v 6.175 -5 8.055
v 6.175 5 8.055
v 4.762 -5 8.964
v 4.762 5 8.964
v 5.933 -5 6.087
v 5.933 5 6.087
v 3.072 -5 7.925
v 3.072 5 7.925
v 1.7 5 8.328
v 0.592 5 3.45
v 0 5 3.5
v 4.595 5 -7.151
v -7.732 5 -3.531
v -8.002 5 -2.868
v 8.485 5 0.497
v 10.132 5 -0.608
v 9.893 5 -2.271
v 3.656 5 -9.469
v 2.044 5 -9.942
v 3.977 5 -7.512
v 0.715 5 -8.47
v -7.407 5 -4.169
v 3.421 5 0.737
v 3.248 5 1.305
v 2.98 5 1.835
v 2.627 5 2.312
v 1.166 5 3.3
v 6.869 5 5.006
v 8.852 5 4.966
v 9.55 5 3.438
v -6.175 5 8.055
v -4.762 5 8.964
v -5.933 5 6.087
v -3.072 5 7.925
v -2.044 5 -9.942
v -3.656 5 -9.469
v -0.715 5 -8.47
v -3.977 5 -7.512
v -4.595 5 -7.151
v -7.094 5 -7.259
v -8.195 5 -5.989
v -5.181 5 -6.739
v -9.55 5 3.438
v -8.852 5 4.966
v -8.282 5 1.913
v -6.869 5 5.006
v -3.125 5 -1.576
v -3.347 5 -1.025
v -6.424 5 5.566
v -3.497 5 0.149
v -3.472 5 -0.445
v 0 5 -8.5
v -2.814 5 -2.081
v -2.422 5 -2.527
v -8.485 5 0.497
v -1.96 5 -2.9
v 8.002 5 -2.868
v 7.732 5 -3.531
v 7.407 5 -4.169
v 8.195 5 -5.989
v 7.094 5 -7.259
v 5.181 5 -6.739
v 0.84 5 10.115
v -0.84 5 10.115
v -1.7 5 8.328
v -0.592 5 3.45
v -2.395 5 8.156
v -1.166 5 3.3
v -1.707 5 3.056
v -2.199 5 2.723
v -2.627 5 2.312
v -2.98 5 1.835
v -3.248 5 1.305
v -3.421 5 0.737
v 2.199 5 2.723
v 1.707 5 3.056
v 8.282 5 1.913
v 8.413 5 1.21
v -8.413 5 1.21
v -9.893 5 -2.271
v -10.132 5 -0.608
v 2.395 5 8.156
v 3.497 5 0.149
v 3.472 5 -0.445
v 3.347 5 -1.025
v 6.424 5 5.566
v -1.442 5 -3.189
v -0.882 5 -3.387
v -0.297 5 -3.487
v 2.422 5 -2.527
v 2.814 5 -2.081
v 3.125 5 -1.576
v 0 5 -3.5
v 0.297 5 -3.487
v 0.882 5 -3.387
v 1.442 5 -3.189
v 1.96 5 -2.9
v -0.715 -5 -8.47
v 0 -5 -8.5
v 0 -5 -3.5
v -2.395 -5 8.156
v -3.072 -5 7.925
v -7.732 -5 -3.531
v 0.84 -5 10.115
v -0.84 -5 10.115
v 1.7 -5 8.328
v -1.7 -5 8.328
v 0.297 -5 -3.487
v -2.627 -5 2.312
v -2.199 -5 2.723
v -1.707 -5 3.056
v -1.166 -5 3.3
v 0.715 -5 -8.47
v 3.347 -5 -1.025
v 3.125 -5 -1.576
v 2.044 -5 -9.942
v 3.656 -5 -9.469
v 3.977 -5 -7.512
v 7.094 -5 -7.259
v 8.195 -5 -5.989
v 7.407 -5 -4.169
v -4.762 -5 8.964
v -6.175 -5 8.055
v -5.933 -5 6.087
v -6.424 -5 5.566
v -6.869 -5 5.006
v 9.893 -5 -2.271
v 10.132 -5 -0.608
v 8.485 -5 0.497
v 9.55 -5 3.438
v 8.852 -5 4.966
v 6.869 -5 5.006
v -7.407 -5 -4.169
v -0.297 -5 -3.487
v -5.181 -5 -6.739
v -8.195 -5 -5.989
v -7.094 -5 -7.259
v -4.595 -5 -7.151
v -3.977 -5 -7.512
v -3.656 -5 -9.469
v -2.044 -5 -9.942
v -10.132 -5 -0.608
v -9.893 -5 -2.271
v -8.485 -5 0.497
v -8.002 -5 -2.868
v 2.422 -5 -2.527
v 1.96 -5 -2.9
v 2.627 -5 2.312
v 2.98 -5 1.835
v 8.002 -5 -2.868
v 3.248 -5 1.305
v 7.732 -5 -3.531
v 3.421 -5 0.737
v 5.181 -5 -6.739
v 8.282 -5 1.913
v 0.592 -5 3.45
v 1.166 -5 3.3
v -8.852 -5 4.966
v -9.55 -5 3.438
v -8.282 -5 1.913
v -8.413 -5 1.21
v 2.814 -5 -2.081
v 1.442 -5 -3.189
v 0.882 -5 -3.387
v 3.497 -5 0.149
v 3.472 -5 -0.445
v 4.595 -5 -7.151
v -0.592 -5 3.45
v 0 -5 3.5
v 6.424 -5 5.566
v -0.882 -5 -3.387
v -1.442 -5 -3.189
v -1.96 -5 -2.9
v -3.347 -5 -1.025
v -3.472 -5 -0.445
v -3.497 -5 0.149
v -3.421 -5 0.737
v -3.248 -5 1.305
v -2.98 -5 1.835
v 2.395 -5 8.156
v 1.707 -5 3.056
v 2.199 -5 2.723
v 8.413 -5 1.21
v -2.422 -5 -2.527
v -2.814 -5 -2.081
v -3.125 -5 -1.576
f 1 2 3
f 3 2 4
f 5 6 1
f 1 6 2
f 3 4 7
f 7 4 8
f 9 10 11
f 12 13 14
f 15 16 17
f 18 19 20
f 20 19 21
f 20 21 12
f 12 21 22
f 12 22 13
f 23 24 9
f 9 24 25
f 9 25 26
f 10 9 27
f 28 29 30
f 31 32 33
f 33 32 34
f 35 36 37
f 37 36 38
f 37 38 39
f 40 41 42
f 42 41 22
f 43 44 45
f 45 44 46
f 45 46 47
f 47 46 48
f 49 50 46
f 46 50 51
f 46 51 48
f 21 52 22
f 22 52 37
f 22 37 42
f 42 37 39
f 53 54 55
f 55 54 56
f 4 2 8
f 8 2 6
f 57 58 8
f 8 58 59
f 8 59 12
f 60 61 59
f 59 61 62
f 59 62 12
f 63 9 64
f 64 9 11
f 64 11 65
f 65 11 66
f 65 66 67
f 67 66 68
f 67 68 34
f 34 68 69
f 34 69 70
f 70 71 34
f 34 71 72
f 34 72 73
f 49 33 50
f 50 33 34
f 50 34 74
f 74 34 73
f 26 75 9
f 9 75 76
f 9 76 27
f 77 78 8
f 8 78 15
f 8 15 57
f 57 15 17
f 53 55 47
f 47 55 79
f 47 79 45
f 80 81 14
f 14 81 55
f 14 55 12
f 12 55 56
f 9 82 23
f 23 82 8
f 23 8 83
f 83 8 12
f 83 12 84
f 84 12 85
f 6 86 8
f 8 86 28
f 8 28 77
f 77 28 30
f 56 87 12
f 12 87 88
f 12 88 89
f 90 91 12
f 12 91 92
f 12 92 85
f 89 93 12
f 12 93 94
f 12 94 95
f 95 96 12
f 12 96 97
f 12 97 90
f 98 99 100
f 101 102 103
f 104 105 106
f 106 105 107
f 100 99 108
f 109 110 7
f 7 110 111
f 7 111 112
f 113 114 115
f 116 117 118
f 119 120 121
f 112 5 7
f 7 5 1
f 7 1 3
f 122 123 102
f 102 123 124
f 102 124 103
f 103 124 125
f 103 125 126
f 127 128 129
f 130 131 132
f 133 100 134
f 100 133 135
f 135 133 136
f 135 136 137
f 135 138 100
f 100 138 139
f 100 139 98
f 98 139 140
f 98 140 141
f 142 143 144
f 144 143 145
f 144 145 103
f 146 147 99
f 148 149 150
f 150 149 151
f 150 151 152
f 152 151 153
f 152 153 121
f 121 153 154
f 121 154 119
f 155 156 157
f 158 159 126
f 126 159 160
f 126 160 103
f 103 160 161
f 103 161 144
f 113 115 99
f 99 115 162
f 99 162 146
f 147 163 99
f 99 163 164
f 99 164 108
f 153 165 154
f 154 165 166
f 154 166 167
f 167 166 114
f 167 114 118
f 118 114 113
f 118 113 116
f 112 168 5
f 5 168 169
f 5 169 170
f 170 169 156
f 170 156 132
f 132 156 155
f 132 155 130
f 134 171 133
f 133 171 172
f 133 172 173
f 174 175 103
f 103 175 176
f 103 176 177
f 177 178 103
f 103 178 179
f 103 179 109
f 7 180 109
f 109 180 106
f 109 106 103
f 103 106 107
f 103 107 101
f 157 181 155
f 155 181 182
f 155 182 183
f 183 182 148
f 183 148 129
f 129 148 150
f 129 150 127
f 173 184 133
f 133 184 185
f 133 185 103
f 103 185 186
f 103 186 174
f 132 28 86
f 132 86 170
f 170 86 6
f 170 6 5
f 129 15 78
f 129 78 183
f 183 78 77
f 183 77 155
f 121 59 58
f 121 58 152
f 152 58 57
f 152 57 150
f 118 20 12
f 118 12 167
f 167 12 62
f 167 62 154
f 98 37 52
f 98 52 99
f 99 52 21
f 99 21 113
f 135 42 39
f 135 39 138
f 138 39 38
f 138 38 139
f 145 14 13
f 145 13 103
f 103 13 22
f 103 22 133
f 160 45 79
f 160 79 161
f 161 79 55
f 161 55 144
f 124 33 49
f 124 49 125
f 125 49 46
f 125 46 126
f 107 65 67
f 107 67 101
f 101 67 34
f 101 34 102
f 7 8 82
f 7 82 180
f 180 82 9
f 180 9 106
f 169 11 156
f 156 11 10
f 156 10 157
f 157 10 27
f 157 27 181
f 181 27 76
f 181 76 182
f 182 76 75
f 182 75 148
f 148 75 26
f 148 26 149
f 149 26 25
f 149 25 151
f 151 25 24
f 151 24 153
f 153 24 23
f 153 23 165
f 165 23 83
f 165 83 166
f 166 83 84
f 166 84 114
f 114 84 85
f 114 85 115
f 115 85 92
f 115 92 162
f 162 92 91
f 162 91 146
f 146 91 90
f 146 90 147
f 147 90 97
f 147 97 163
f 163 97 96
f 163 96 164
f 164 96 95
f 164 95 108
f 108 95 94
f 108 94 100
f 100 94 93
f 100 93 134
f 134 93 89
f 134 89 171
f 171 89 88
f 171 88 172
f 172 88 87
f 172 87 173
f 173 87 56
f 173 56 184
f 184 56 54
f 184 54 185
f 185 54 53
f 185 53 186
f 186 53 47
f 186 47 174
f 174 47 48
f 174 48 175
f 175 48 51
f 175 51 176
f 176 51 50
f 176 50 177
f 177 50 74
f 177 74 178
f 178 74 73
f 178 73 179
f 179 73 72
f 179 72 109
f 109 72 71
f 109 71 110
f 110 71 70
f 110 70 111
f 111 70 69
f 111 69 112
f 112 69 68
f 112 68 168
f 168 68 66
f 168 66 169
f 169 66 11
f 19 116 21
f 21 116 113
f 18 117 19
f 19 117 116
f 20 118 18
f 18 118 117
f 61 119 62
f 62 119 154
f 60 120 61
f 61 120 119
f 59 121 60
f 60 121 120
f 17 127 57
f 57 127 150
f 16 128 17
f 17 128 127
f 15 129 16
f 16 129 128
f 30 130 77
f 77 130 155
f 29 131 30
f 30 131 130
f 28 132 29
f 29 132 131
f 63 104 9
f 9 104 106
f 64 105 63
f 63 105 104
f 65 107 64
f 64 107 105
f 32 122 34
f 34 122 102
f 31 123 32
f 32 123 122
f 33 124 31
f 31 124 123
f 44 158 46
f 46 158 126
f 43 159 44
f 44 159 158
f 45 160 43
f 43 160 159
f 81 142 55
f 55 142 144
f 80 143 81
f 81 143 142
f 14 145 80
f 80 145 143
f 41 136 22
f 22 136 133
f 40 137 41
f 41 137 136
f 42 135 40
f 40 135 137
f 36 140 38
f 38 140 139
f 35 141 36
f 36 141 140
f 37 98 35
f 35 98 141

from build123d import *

# Parameters (mm, degrees)
SKETCH1_R            = 3.5
BOSS_EXTRUDE1_DEPTH  = 5
SKETCH12_R           = 8.5
SKETCH12_R_2         = 3.5
BOSS_EXTRUDE6_DEPTH  = 5
BOSS_EXTRUDE9_DEPTH  = 5
CIRPATTERN2_COUNT    = 11
CUT_EXTRUDE1_START   = -10
SKETCH14_R           = 3.5
CUT_EXTRUDE1_DEPTH   = 10
SKETCH17_R           = 3.5
BOSS_EXTRUDE10_DEPTH = 5
BOSS_EXTRUDE11_DEPTH = 5


with BuildPart() as part:
    # Sketch1 → Boss-Extrude1 (new body)
    with BuildSketch(Plane(origin=(0, 0, 0), x_dir=(1, 0, 0), z_dir=(0, 1, 0))):
        with Locations(Location((0, 0, 0), (0, 0, 270))):
            Circle(SKETCH1_R)
    extrude(amount=BOSS_EXTRUDE1_DEPTH)

    # Sketch14 → Cut-Extrude1 (cut)
    with BuildSketch(Plane(origin=(0, 5, 0), x_dir=(1, 0, 0), z_dir=(0, 1, 0)).offset(CUT_EXTRUDE1_START)):
        with Locations(Location((0, 0, 0), (0, 0, 90))):
            Circle(SKETCH14_R)
    extrude(amount=CUT_EXTRUDE1_DEPTH, mode=Mode.SUBTRACT)


with BuildPart() as body_2:
    # Sketch12 → Boss-Extrude6 (new body)
    with BuildSketch(Plane(origin=(0, 5, 0), x_dir=(-1, 0, 0), z_dir=(0, -1, 0))):
        with Locations(Location((0, 0, 0), (0, 0, 90))):
            Circle(SKETCH12_R)
        with Locations(Location((0, 0, 0), (0, 0, 90))):
            Circle(SKETCH12_R_2, mode=Mode.SUBTRACT)
    extrude(amount=BOSS_EXTRUDE6_DEPTH)



with BuildPart() as body_3:
    # Sketch13 → Boss-Extrude9 (new body)
    with BuildSketch(Plane.XZ):
        with BuildLine():
            Line((1.7, 8.328265125), (0.84, 10.115181659))
            Line((0.84, 10.115181659), (-0.84, 10.115181659))
            Line((-0.84, 10.115181659), (-1.7, 8.328265125))
            ThreePointArc((-1.7, 8.328265125), (0, 8.5), (1.7, 8.328265125))
        make_face()
    extrude(amount=-BOSS_EXTRUDE9_DEPTH)


with BuildPart() as cirpattern2_1:
    # CirPattern2: pattern copy
    add(body_3.part.rotate(Axis((0, 0, 0), (0, 1, 0)), 1 * 360 / CIRPATTERN2_COUNT))


with BuildPart() as cirpattern2_2:
    # CirPattern2: pattern copy
    add(body_3.part.rotate(Axis((0, 0, 0), (0, 1, 0)), 2 * 360 / CIRPATTERN2_COUNT))


with BuildPart() as cirpattern2_3:
    # CirPattern2: pattern copy
    add(body_3.part.rotate(Axis((0, 0, 0), (0, 1, 0)), 3 * 360 / CIRPATTERN2_COUNT))


with BuildPart() as cirpattern2_4:
    # CirPattern2: pattern copy
    add(body_3.part.rotate(Axis((0, 0, 0), (0, 1, 0)), 4 * 360 / CIRPATTERN2_COUNT))


with BuildPart() as cirpattern2_5:
    # CirPattern2: pattern copy
    add(body_3.part.rotate(Axis((0, 0, 0), (0, 1, 0)), 5 * 360 / CIRPATTERN2_COUNT))


with BuildPart() as cirpattern2_6:
    # CirPattern2: pattern copy
    add(body_3.part.rotate(Axis((0, 0, 0), (0, 1, 0)), 6 * 360 / CIRPATTERN2_COUNT))


with BuildPart() as cirpattern2_7:
    # CirPattern2: pattern copy
    add(body_3.part.rotate(Axis((0, 0, 0), (0, 1, 0)), 7 * 360 / CIRPATTERN2_COUNT))


with BuildPart() as cirpattern2_8:
    # CirPattern2: pattern copy
    add(body_3.part.rotate(Axis((0, 0, 0), (0, 1, 0)), 8 * 360 / CIRPATTERN2_COUNT))


with BuildPart() as cirpattern2_9:
    # CirPattern2: pattern copy
    add(body_3.part.rotate(Axis((0, 0, 0), (0, 1, 0)), 9 * 360 / CIRPATTERN2_COUNT))


with BuildPart() as cirpattern2_10:
    # CirPattern2: pattern copy
    add(body_3.part.rotate(Axis((0, 0, 0), (0, 1, 0)), 10 * 360 / CIRPATTERN2_COUNT))


with BuildPart() as body_2_1:
    add(body_2.part)

    add(body_3.part)  # Boss-Extrude10 merges body 3

    add(cirpattern2_2.part)  # Boss-Extrude10 merges CirPattern2_2

    add(cirpattern2_3.part)  # Boss-Extrude10 merges CirPattern2_3

    add(cirpattern2_4.part)  # Boss-Extrude10 merges CirPattern2_4

    add(cirpattern2_5.part)  # Boss-Extrude10 merges CirPattern2_5

    add(cirpattern2_6.part)  # Boss-Extrude10 merges CirPattern2_6

    add(cirpattern2_7.part)  # Boss-Extrude10 merges CirPattern2_7

    add(cirpattern2_8.part)  # Boss-Extrude10 merges CirPattern2_8

    add(cirpattern2_9.part)  # Boss-Extrude10 merges CirPattern2_9

    add(cirpattern2_10.part)  # Boss-Extrude10 merges CirPattern2_10
    # Sketch17 → Boss-Extrude10 (add)
    with BuildSketch(Plane.XZ):
        with BuildLine():
            Line((5.180819576, -6.738628089), (7.094461217, -7.258864928))
            Line((7.094461217, -7.258864928), (8.19462725, -5.989205643))
            Line((8.19462725, -5.989205643), (7.407346071, -4.169079536))
            ThreePointArc((7.407346071, -4.169079536), (7.731871961, -3.531027611), (8.00156017, -2.867932156))
            Line((8.00156017, -2.867932156), (9.892679231, -2.270990453))
            Line((9.892679231, -2.270990453), (10.131768159, -0.608090431))
            Line((10.131768159, -0.608090431), (8.48543062, 0.497460747))
            ThreePointArc((8.48543062, 0.497460747), (8.413482256, 1.209676125), (8.281861946, 1.913311973))
            Line((8.281861946, 1.913311973), (9.550041487, 3.437907444))
            Line((9.550041487, 3.437907444), (8.852144265, 4.966089197))
            Line((8.852144265, 4.966089197), (6.869450902, 5.006060757))
            ThreePointArc((6.869450902, 5.006060757), (4.595446948, 7.150655029), (1.7, 8.328265125))
            Line((1.7, 8.328265125), (0.84, 10.115181659))
            Line((0.84, 10.115181659), (-0.84, 10.115181659))
            Line((-0.84, 10.115181659), (-1.7, 8.328265125))
            ThreePointArc((-1.7, 8.328265125), (-2.394726733, 8.155690276), (-3.07246906, 7.925271849))
            Line((-3.07246906, 7.925271849), (-4.762027113, 8.963570593))
            Line((-4.762027113, 8.963570593), (-6.175333049, 8.055294019))
            Line((-6.175333049, 8.055294019), (-5.932731071, 6.087093069))
            ThreePointArc((-5.932731071, 6.087093069), (-6.423871382, 5.566316239), (-6.869450902, 5.006060757))
            Line((-6.869450902, 5.006060757), (-8.852144265, 4.966089197))
            Line((-8.852144265, 4.966089197), (-9.550041487, 3.437907444))
            Line((-9.550041487, 3.437907444), (-8.281861946, 1.913311973))
            ThreePointArc((-8.281861946, 1.913311973), (-8.413482256, 1.209676125), (-8.48543062, 0.497460747))
            Line((-8.48543062, 0.497460747), (-10.131768159, -0.608090431))
            Line((-10.131768159, -0.608090431), (-9.892679231, -2.270990453))
            Line((-9.892679231, -2.270990453), (-8.00156017, -2.867932156))
            ThreePointArc((-8.00156017, -2.867932156), (-7.731871961, -3.531027611), (-7.407346071, -4.169079536))
            Line((-7.407346071, -4.169079536), (-8.19462725, -5.989205643))
            Line((-8.19462725, -5.989205643), (-7.094461217, -7.258864928))
            Line((-7.094461217, -7.258864928), (-5.180819576, -6.738628089))
            ThreePointArc((-5.180819576, -6.738628089), (-4.595446948, -7.150655029), (-3.977481483, -7.511966524))
            Line((-3.977481483, -7.511966524), (-3.65575009, -9.468790381))
            Line((-3.65575009, -9.468790381), (-2.043801894, -9.942101077))
            Line((-2.043801894, -9.942101077), (-0.715205373, -8.469857217))
            ThreePointArc((-0.715205373, -8.469857217), (0, -8.5), (0.715205373, -8.469857217))
            Line((0.715205373, -8.469857217), (2.043801894, -9.942101077))
            Line((2.043801894, -9.942101077), (3.65575009, -9.468790381))
            Line((3.65575009, -9.468790381), (3.977481483, -7.511966524))
            ThreePointArc((3.977481483, -7.511966524), (4.595446948, -7.150655029), (5.180819576, -6.738628089))
        make_face()
        with Locations(Location((0, 0, 0), (0, 0, 270))):
            Circle(SKETCH17_R, mode=Mode.SUBTRACT)
    extrude(amount=BOSS_EXTRUDE10_DEPTH)


    add(cirpattern2_1.part)  # Boss-Extrude11 merges CirPattern2_1
    # Sketch18 → Boss-Extrude11 (add)
    with BuildSketch(Plane.XZ):
        with BuildLine():
            Line((6.175333049, 8.055294019), (4.762027113, 8.963570593))
            Line((4.762027113, 8.963570593), (3.07246906, 7.925271849))
            ThreePointArc((3.07246906, 7.925271849), (4.595446948, 7.150655029), (5.932731071, 6.087093069))
            Line((5.932731071, 6.087093069), (6.175333049, 8.055294019))
        make_face()
    extrude(amount=BOSS_EXTRUDE11_DEPTH)


solid = body_2_1.part
